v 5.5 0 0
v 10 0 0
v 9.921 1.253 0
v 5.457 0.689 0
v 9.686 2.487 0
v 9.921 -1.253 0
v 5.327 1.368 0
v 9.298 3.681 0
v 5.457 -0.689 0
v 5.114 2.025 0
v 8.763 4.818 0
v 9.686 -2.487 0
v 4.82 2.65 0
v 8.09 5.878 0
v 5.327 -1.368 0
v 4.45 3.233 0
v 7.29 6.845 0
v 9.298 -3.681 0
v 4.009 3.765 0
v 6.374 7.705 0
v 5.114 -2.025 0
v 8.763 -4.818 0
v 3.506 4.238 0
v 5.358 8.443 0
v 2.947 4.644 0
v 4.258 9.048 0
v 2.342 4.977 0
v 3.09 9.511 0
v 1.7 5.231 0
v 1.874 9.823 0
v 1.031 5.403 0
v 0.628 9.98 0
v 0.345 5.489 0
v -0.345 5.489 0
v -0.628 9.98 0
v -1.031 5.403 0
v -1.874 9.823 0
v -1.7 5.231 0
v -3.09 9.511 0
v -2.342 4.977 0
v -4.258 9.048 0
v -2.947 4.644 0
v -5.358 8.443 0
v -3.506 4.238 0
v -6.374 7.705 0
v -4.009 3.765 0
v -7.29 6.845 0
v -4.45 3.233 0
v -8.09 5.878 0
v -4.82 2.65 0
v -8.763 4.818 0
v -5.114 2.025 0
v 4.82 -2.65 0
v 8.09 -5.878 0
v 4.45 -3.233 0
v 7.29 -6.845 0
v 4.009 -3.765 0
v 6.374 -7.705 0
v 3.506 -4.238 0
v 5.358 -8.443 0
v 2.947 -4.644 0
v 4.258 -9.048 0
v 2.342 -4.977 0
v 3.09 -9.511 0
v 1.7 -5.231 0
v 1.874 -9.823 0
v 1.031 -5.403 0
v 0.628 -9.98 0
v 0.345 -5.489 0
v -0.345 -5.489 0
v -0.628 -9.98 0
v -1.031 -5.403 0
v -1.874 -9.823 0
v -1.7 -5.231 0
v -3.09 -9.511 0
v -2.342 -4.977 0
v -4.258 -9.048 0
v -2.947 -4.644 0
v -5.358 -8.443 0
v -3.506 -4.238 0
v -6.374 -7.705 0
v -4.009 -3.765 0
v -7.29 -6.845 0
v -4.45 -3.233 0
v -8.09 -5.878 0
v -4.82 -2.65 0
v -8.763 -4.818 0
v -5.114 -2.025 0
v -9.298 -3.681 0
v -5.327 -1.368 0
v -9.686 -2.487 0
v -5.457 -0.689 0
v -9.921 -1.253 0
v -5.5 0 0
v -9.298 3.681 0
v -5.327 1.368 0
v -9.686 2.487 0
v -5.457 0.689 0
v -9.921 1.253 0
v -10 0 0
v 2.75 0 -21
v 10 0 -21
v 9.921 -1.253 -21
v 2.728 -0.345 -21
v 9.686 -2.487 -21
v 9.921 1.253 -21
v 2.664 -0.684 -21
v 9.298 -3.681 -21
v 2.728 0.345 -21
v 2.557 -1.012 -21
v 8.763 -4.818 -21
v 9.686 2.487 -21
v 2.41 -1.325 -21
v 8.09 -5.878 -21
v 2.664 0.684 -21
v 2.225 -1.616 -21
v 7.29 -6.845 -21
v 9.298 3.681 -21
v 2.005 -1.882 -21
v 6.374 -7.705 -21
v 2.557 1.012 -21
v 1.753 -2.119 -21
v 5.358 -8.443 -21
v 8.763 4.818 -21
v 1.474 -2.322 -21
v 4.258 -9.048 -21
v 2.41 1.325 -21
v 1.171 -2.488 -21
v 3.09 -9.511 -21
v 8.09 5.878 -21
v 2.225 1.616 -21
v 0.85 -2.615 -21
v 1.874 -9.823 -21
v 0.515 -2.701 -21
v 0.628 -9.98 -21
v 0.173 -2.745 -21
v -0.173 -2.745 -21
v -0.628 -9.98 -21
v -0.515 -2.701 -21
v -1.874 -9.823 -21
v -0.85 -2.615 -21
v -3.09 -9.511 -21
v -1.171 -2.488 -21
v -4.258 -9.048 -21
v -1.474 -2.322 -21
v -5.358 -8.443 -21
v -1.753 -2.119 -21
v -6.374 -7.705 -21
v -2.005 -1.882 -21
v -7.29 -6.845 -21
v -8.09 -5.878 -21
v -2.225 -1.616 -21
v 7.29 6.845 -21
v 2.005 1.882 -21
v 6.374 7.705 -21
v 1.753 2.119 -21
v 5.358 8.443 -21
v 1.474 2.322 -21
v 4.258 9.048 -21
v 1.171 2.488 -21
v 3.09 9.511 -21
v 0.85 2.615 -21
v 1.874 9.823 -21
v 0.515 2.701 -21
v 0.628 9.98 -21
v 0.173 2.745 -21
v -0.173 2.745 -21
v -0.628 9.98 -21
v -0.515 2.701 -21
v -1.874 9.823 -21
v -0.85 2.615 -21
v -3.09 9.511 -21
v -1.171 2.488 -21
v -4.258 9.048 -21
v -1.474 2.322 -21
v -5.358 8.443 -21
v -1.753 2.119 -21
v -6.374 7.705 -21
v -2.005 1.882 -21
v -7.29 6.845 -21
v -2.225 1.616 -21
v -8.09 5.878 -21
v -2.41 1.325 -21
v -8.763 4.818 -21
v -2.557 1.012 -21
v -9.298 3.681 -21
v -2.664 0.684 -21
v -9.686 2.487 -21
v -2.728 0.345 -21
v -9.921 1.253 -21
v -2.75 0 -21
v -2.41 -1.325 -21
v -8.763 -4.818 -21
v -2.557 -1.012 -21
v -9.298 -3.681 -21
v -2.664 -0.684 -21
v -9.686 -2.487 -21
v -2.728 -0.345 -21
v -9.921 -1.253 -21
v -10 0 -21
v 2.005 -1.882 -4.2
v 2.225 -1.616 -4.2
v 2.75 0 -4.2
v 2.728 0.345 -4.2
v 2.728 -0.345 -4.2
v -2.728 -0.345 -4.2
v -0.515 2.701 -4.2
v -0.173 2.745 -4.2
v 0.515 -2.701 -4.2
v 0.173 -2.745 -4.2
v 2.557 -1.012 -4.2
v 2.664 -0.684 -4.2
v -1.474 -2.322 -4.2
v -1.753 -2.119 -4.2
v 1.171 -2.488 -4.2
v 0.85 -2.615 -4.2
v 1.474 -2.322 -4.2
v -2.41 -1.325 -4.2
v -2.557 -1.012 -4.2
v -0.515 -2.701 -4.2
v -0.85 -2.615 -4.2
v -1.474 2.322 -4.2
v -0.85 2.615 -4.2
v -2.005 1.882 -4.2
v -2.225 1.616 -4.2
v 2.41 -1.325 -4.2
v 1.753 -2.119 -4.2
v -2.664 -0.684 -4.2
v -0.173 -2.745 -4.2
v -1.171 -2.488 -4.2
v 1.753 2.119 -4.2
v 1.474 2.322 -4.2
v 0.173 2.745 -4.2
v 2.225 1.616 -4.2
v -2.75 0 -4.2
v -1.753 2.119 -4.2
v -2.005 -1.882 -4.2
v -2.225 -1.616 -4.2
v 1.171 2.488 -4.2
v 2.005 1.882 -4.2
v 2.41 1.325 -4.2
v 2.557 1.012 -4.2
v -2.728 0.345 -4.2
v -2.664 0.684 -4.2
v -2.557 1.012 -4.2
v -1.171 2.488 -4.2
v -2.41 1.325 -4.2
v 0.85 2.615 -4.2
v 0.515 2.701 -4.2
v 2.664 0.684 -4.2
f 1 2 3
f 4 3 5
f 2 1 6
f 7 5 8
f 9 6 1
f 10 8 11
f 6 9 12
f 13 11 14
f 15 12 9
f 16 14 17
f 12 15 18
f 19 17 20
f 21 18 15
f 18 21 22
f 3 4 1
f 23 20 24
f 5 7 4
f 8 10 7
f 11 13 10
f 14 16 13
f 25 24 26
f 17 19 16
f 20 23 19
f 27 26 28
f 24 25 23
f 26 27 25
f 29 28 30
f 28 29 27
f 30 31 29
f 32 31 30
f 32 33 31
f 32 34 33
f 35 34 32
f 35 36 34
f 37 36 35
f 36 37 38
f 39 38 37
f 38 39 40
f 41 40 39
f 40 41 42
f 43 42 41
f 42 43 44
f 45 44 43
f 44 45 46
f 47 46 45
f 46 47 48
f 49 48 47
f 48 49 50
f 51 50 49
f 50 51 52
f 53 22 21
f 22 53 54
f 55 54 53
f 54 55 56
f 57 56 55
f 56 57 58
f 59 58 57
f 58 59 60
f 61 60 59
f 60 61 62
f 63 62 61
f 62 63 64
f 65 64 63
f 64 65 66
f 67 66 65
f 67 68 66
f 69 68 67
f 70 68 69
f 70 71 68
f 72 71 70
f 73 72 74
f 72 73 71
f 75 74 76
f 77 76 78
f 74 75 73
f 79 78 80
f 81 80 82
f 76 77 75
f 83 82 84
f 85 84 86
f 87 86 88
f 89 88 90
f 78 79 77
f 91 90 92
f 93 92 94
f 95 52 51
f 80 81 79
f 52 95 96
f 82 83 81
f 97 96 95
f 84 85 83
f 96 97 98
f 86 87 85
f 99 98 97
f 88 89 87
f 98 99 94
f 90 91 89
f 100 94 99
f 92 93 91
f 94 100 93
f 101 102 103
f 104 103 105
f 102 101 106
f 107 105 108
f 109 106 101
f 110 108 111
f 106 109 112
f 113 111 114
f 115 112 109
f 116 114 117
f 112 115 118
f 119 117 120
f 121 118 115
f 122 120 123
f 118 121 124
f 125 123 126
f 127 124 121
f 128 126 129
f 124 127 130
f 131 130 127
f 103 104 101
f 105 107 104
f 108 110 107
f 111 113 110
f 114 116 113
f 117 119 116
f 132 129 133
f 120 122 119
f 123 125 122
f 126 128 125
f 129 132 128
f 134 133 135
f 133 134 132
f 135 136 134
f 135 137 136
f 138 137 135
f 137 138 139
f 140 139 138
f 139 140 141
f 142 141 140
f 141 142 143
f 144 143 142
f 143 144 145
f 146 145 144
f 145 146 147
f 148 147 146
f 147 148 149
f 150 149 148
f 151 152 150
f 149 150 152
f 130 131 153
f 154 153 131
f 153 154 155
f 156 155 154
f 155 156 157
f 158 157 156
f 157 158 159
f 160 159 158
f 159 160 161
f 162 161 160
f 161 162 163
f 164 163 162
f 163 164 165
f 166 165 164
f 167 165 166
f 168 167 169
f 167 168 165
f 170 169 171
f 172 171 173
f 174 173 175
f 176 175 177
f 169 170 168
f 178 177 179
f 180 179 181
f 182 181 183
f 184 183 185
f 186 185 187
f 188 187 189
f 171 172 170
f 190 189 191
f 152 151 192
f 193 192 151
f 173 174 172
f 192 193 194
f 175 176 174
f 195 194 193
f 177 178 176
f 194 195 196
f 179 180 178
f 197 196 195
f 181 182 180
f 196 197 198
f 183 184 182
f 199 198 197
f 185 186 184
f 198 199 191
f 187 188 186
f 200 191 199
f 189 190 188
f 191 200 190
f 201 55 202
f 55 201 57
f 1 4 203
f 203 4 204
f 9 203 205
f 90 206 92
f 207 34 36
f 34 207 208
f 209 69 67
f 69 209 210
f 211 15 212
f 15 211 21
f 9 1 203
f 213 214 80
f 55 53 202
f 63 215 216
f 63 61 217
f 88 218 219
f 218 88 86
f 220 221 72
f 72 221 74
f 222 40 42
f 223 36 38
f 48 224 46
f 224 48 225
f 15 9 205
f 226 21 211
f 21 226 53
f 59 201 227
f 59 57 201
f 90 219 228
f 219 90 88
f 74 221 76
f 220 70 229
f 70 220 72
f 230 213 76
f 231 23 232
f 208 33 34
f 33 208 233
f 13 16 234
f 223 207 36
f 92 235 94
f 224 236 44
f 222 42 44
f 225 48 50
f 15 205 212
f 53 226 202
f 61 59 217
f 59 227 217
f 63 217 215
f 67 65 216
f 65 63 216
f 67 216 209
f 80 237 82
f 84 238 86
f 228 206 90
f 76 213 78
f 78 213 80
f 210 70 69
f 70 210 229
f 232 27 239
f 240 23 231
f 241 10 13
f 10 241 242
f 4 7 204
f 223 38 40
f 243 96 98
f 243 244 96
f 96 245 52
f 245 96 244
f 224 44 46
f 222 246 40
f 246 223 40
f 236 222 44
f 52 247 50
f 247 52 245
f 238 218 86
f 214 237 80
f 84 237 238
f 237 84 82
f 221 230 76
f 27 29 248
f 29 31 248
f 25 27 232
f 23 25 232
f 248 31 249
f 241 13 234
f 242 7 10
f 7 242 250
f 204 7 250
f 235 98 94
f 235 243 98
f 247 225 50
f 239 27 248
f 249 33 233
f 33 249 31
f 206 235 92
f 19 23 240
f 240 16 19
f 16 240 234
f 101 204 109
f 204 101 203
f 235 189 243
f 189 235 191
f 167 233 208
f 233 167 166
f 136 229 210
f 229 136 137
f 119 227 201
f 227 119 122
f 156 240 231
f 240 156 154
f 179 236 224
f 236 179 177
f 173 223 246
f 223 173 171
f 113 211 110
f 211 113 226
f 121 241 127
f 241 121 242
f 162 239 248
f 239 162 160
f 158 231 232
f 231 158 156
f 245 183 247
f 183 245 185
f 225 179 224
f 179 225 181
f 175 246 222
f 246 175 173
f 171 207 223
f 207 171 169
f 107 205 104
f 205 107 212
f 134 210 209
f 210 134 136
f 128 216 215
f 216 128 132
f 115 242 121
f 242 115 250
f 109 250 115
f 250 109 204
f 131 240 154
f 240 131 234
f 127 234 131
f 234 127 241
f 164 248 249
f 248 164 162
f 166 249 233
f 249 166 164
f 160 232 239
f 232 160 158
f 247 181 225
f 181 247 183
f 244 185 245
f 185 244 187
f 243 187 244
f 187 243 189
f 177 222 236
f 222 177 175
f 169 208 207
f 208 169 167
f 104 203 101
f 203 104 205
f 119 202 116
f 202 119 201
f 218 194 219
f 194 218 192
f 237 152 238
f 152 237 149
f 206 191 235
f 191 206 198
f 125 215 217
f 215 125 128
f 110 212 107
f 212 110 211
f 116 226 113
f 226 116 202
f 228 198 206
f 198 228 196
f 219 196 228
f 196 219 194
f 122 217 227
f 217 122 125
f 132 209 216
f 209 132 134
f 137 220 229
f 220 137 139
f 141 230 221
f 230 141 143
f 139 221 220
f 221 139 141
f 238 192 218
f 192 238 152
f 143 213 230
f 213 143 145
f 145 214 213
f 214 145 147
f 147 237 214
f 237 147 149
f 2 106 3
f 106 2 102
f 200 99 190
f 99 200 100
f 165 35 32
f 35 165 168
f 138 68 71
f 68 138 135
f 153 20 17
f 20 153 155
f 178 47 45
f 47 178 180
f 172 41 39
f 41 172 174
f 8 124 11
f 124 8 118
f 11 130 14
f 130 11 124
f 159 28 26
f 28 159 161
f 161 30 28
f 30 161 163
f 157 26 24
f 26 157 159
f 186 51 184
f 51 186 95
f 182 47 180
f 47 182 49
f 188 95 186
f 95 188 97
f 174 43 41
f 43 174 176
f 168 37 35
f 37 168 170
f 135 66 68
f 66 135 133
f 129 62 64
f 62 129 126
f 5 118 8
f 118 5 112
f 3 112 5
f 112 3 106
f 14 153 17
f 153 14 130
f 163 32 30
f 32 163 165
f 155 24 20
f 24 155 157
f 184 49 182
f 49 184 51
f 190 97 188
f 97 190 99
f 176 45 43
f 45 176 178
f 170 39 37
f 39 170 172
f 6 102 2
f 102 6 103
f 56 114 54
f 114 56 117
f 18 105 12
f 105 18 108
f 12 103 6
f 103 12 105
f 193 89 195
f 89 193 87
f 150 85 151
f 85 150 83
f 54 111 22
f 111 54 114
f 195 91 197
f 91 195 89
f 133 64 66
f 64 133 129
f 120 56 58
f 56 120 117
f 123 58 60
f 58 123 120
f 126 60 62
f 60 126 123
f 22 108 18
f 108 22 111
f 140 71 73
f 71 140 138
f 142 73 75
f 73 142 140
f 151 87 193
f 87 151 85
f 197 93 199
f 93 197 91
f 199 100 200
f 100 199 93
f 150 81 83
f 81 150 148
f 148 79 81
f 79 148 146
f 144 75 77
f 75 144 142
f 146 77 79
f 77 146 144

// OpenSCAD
$fn = 50;


difference() {
	union() {
		translate(v = [0, 0, -21.0000000000]) {
			cylinder(h = 21, r = 10.0000000000);
		}
		cylinder(h = 0, r = 13.0000000000);
	}
	union() {
		translate(v = [0, 0, 0]) {
			rotate(a = [0, 0, 0]) {
				difference() {
					union() {
						#translate(v = [0, 0, -21.0000000000]) {
							cylinder(h = 21, r = 2.2500000000);
						}
						#translate(v = [0, 0, -4.2000000000]) {
							cylinder(h = 4.2000000000, r = 10.0000000000, r1 = 2.7500000000, r2 = 5.5000000000);
						}
						#translate(v = [0, 0, -21.0000000000]) {
							cylinder(h = 21, r = 2.7500000000);
						}
						#translate(v = [0, 0, -21.0000000000]) {
							cylinder(h = 21, r = 2.2500000000);
						}
					}
					union();
				}
			}
		}
	}
}
